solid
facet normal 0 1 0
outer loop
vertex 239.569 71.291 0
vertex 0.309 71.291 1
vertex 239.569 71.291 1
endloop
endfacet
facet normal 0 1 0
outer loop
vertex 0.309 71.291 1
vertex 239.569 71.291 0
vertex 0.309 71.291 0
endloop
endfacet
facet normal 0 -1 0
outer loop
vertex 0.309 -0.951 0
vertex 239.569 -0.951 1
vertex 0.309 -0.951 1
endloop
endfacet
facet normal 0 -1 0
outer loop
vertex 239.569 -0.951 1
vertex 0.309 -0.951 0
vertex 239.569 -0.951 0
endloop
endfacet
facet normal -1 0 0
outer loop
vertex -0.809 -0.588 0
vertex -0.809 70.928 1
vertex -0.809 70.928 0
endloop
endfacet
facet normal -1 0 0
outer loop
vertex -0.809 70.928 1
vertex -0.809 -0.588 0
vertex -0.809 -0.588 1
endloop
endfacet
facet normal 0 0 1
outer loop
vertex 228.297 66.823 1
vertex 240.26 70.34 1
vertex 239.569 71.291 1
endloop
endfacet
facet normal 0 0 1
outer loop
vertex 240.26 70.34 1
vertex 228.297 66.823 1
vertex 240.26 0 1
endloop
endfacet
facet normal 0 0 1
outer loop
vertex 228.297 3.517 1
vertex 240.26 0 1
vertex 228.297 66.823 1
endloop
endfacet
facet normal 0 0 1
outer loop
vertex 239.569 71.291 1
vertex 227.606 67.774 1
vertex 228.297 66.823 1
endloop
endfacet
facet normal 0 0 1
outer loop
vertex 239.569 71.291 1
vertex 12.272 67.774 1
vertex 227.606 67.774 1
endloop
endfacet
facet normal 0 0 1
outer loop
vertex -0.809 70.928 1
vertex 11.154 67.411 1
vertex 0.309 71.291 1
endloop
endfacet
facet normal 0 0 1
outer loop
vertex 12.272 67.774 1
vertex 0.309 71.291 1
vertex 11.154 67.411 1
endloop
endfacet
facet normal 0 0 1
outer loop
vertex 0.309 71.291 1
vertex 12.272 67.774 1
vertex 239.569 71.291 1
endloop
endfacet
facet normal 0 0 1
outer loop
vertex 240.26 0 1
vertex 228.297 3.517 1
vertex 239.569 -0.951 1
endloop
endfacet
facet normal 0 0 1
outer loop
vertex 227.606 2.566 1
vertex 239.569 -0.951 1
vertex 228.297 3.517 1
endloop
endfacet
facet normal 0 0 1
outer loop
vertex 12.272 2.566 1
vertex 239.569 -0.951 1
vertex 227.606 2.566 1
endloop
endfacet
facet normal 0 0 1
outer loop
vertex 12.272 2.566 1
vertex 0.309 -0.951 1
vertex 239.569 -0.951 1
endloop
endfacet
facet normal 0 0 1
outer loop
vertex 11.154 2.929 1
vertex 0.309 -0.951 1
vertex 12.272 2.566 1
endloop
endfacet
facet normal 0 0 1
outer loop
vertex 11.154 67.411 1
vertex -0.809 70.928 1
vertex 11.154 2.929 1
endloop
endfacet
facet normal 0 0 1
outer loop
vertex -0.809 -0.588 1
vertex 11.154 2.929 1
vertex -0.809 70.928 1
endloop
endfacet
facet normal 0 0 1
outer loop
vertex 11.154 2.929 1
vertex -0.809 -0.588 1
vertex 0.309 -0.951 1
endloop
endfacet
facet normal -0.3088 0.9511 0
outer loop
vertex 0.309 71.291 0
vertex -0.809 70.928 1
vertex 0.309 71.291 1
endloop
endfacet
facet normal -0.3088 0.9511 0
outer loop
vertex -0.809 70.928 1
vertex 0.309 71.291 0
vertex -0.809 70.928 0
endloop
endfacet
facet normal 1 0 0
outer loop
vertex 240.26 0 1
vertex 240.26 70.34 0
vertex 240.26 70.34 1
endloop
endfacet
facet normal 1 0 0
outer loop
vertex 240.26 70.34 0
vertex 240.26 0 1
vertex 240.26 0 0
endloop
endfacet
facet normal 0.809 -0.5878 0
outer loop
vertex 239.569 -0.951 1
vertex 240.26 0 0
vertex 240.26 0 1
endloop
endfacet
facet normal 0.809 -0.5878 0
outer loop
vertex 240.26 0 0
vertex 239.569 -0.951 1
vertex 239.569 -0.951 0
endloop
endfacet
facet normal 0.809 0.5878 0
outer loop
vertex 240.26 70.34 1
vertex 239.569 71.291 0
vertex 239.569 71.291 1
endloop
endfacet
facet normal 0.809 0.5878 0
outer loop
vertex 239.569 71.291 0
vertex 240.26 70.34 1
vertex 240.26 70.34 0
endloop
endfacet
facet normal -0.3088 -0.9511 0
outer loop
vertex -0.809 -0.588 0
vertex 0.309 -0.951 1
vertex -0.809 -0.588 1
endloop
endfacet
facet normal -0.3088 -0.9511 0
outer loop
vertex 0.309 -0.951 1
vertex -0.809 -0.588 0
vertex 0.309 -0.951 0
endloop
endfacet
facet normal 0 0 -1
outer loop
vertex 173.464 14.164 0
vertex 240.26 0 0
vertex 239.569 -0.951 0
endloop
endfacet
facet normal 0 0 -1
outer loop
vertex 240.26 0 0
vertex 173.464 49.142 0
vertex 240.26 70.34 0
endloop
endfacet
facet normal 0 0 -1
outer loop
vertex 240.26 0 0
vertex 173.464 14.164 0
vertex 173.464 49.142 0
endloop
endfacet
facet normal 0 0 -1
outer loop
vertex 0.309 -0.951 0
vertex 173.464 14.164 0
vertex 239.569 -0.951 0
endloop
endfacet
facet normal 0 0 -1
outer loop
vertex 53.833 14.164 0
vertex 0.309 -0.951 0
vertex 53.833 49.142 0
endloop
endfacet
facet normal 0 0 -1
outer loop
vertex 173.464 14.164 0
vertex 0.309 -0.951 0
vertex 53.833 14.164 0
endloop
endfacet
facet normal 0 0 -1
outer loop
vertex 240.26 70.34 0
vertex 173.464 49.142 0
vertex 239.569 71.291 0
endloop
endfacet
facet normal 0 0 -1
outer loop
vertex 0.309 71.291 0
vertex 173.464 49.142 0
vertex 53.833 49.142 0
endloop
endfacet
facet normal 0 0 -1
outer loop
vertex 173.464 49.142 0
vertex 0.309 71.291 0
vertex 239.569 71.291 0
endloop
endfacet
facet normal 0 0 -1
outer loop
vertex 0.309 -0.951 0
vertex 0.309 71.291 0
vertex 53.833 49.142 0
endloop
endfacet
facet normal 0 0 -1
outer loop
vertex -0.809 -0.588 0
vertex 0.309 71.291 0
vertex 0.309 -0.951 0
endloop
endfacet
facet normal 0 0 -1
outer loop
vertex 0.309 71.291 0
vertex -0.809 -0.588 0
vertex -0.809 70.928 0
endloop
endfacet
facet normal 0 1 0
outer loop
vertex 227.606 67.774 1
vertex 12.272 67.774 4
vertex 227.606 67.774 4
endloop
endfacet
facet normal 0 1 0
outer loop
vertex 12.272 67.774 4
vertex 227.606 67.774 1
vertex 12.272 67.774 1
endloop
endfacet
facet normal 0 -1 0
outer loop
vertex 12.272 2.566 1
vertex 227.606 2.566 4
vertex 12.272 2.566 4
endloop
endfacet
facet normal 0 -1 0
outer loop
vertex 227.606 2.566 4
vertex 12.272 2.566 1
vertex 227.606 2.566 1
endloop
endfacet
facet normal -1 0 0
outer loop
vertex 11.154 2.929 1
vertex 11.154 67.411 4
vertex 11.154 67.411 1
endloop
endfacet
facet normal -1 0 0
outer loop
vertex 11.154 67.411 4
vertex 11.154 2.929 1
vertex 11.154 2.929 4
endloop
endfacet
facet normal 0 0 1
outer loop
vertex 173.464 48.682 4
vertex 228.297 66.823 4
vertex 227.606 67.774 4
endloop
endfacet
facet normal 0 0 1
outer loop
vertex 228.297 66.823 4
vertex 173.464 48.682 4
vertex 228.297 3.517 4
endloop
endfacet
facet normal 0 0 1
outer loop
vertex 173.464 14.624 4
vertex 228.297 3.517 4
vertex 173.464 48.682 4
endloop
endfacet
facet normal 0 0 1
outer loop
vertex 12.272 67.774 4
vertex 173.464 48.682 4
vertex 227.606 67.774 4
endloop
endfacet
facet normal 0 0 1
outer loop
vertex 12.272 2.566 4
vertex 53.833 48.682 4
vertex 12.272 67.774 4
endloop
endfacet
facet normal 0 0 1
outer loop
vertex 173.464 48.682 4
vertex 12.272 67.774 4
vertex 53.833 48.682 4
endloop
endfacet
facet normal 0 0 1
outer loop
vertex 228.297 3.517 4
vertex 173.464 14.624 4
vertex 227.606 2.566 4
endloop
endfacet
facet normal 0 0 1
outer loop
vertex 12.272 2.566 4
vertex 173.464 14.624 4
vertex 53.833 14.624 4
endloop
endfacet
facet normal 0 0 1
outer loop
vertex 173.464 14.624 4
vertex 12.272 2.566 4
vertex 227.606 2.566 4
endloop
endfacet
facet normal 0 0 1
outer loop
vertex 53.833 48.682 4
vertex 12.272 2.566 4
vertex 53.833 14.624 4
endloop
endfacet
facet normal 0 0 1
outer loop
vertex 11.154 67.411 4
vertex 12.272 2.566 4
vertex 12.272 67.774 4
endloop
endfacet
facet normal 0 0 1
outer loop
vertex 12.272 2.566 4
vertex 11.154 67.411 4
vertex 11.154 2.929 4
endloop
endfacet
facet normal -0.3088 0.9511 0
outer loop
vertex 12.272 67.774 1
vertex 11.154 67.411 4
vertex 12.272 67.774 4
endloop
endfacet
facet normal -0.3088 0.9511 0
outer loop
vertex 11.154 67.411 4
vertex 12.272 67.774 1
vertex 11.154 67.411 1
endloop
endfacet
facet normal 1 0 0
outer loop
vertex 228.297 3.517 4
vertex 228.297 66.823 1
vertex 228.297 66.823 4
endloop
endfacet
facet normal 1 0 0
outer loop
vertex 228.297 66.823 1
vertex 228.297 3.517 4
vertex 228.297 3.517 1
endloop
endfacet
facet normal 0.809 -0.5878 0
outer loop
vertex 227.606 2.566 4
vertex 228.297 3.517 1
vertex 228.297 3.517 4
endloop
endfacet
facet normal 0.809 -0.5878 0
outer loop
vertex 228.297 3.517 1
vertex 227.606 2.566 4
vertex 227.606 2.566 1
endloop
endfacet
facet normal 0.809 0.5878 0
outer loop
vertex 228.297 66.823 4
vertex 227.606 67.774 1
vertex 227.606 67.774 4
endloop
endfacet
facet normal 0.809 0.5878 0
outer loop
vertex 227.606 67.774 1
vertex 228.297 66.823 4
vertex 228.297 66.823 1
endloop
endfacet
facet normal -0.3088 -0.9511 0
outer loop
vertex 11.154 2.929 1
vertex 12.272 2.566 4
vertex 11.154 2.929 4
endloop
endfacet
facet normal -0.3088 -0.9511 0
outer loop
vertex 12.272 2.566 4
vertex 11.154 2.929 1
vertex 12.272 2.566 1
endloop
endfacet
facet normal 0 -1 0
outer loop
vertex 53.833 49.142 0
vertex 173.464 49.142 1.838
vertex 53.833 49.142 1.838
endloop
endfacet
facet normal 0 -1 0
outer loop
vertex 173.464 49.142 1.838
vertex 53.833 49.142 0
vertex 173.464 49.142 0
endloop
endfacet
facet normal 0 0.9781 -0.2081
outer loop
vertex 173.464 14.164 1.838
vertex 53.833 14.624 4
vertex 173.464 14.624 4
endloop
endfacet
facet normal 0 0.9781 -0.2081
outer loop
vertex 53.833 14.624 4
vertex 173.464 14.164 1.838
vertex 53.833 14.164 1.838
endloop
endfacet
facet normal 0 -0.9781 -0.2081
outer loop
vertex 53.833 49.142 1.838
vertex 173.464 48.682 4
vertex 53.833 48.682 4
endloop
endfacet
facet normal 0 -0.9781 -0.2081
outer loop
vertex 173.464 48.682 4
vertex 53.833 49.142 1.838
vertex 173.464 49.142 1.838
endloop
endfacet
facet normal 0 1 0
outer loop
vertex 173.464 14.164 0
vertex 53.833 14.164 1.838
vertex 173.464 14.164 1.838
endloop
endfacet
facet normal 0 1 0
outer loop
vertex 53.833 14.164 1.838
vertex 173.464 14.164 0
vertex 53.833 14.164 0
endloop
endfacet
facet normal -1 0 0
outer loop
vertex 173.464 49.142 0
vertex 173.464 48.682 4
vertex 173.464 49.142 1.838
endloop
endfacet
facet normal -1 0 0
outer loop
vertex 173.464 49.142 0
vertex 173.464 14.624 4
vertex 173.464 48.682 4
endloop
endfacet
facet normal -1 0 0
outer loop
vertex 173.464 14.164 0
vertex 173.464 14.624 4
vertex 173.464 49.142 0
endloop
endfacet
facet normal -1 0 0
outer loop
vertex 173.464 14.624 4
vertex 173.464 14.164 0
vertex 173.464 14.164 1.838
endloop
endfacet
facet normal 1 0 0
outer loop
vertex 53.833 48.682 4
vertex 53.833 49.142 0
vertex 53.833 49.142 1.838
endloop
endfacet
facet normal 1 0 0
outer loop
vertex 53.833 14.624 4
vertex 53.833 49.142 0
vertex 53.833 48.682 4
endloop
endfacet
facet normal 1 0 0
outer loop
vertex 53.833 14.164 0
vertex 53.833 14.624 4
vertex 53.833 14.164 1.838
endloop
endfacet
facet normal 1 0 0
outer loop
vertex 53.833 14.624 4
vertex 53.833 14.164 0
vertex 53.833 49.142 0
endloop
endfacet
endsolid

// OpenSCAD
// file: ../case_template/lid.scad
//Lid
height = 1;
length = 1;
x = 220.78;
y = 70.34;

//Lid lip
lip_height = 4;
lip_length = 1;
lip_percent = .9; 

//Opening
opening_length = x/2;
opening_width = y/2;


module lid(height, lenght, x, y, lip_height, lip_lenght, lip_percent){
        //lip_x_y
	lip_x = x * lip_percent;
	lip_y = y * lip_percent;

	//Middle
	x_middle = (x - lip_x)/2;
	y_middle = (y - lip_y)/2;
	
	//Object
	union(){
		hull(){
		    translate([0, 0, 0]){
			cylinder(height);
		    }
		    translate([x, 0, 0]){
			cylinder(height);
		    }
		    translate([0, y, 0]){
			cylinder(height);
		    }
		    translate([x, y, 0]){
			cylinder(height);
		    }
		}
		translate([x_middle, y_middle, 0]) hull(){
		    translate([0, 0, 0]){
			cylinder(lip_height);
		    }
		    translate([lip_x, 0, 0]){
			cylinder(lip_height);
		    }
		    translate([0, lip_y, 0]){
			cylinder(lip_height);
		    }
		    translate([lip_x, lip_y, 0]){
			cylinder(lip_height);
		    }
		}
	}
}

module lid_with_opening(height, lenght, x, y, lip_height, lip_lenght, lip_percent, opening_length, opening_width){
    //lip_x_y
    lip_x = x * lip_percent;
    lip_y = y * lip_percent;

    //Middle
    x_middle = lip_x/4;
    y_middle = lip_y/2;

    difference(){
        lid(height, lenght, x, y, lip_height, lip_lenght, lip_percent);	
	color([0, 1, 0]) union(){
		translate([x_middle, y_middle, 0]){	
			rotate([0, 90, 0]){
				cylinder(opening_length, opening_width/2, opening_width/2);
			}
		}
		/*translate([x_middle, y_middle, 0]){
		    sphere(opening_width/2);
		}
		translate([opening_length, y_middle, 0]){
		    sphere(opening_width/2);
		}*/
        }
    }
}

lid_with_opening(height, length, x, y, lip_height, lip_length, lip_percent, opening_length, opening_width);
// main file
use <../case_template/lid.scad>
//Lid
height = 1;
length = 1;
x = 239.26;
y = 70.34;

//Lid lip
lip_height = 4;
lip_length = 1;
lip_percent = .9; 

//Opening
opening_length = x/2;
opening_width = y/2;

lid_with_opening(height, length, x, y, lip_height, lip_length, lip_percent, opening_length, opening_width);
